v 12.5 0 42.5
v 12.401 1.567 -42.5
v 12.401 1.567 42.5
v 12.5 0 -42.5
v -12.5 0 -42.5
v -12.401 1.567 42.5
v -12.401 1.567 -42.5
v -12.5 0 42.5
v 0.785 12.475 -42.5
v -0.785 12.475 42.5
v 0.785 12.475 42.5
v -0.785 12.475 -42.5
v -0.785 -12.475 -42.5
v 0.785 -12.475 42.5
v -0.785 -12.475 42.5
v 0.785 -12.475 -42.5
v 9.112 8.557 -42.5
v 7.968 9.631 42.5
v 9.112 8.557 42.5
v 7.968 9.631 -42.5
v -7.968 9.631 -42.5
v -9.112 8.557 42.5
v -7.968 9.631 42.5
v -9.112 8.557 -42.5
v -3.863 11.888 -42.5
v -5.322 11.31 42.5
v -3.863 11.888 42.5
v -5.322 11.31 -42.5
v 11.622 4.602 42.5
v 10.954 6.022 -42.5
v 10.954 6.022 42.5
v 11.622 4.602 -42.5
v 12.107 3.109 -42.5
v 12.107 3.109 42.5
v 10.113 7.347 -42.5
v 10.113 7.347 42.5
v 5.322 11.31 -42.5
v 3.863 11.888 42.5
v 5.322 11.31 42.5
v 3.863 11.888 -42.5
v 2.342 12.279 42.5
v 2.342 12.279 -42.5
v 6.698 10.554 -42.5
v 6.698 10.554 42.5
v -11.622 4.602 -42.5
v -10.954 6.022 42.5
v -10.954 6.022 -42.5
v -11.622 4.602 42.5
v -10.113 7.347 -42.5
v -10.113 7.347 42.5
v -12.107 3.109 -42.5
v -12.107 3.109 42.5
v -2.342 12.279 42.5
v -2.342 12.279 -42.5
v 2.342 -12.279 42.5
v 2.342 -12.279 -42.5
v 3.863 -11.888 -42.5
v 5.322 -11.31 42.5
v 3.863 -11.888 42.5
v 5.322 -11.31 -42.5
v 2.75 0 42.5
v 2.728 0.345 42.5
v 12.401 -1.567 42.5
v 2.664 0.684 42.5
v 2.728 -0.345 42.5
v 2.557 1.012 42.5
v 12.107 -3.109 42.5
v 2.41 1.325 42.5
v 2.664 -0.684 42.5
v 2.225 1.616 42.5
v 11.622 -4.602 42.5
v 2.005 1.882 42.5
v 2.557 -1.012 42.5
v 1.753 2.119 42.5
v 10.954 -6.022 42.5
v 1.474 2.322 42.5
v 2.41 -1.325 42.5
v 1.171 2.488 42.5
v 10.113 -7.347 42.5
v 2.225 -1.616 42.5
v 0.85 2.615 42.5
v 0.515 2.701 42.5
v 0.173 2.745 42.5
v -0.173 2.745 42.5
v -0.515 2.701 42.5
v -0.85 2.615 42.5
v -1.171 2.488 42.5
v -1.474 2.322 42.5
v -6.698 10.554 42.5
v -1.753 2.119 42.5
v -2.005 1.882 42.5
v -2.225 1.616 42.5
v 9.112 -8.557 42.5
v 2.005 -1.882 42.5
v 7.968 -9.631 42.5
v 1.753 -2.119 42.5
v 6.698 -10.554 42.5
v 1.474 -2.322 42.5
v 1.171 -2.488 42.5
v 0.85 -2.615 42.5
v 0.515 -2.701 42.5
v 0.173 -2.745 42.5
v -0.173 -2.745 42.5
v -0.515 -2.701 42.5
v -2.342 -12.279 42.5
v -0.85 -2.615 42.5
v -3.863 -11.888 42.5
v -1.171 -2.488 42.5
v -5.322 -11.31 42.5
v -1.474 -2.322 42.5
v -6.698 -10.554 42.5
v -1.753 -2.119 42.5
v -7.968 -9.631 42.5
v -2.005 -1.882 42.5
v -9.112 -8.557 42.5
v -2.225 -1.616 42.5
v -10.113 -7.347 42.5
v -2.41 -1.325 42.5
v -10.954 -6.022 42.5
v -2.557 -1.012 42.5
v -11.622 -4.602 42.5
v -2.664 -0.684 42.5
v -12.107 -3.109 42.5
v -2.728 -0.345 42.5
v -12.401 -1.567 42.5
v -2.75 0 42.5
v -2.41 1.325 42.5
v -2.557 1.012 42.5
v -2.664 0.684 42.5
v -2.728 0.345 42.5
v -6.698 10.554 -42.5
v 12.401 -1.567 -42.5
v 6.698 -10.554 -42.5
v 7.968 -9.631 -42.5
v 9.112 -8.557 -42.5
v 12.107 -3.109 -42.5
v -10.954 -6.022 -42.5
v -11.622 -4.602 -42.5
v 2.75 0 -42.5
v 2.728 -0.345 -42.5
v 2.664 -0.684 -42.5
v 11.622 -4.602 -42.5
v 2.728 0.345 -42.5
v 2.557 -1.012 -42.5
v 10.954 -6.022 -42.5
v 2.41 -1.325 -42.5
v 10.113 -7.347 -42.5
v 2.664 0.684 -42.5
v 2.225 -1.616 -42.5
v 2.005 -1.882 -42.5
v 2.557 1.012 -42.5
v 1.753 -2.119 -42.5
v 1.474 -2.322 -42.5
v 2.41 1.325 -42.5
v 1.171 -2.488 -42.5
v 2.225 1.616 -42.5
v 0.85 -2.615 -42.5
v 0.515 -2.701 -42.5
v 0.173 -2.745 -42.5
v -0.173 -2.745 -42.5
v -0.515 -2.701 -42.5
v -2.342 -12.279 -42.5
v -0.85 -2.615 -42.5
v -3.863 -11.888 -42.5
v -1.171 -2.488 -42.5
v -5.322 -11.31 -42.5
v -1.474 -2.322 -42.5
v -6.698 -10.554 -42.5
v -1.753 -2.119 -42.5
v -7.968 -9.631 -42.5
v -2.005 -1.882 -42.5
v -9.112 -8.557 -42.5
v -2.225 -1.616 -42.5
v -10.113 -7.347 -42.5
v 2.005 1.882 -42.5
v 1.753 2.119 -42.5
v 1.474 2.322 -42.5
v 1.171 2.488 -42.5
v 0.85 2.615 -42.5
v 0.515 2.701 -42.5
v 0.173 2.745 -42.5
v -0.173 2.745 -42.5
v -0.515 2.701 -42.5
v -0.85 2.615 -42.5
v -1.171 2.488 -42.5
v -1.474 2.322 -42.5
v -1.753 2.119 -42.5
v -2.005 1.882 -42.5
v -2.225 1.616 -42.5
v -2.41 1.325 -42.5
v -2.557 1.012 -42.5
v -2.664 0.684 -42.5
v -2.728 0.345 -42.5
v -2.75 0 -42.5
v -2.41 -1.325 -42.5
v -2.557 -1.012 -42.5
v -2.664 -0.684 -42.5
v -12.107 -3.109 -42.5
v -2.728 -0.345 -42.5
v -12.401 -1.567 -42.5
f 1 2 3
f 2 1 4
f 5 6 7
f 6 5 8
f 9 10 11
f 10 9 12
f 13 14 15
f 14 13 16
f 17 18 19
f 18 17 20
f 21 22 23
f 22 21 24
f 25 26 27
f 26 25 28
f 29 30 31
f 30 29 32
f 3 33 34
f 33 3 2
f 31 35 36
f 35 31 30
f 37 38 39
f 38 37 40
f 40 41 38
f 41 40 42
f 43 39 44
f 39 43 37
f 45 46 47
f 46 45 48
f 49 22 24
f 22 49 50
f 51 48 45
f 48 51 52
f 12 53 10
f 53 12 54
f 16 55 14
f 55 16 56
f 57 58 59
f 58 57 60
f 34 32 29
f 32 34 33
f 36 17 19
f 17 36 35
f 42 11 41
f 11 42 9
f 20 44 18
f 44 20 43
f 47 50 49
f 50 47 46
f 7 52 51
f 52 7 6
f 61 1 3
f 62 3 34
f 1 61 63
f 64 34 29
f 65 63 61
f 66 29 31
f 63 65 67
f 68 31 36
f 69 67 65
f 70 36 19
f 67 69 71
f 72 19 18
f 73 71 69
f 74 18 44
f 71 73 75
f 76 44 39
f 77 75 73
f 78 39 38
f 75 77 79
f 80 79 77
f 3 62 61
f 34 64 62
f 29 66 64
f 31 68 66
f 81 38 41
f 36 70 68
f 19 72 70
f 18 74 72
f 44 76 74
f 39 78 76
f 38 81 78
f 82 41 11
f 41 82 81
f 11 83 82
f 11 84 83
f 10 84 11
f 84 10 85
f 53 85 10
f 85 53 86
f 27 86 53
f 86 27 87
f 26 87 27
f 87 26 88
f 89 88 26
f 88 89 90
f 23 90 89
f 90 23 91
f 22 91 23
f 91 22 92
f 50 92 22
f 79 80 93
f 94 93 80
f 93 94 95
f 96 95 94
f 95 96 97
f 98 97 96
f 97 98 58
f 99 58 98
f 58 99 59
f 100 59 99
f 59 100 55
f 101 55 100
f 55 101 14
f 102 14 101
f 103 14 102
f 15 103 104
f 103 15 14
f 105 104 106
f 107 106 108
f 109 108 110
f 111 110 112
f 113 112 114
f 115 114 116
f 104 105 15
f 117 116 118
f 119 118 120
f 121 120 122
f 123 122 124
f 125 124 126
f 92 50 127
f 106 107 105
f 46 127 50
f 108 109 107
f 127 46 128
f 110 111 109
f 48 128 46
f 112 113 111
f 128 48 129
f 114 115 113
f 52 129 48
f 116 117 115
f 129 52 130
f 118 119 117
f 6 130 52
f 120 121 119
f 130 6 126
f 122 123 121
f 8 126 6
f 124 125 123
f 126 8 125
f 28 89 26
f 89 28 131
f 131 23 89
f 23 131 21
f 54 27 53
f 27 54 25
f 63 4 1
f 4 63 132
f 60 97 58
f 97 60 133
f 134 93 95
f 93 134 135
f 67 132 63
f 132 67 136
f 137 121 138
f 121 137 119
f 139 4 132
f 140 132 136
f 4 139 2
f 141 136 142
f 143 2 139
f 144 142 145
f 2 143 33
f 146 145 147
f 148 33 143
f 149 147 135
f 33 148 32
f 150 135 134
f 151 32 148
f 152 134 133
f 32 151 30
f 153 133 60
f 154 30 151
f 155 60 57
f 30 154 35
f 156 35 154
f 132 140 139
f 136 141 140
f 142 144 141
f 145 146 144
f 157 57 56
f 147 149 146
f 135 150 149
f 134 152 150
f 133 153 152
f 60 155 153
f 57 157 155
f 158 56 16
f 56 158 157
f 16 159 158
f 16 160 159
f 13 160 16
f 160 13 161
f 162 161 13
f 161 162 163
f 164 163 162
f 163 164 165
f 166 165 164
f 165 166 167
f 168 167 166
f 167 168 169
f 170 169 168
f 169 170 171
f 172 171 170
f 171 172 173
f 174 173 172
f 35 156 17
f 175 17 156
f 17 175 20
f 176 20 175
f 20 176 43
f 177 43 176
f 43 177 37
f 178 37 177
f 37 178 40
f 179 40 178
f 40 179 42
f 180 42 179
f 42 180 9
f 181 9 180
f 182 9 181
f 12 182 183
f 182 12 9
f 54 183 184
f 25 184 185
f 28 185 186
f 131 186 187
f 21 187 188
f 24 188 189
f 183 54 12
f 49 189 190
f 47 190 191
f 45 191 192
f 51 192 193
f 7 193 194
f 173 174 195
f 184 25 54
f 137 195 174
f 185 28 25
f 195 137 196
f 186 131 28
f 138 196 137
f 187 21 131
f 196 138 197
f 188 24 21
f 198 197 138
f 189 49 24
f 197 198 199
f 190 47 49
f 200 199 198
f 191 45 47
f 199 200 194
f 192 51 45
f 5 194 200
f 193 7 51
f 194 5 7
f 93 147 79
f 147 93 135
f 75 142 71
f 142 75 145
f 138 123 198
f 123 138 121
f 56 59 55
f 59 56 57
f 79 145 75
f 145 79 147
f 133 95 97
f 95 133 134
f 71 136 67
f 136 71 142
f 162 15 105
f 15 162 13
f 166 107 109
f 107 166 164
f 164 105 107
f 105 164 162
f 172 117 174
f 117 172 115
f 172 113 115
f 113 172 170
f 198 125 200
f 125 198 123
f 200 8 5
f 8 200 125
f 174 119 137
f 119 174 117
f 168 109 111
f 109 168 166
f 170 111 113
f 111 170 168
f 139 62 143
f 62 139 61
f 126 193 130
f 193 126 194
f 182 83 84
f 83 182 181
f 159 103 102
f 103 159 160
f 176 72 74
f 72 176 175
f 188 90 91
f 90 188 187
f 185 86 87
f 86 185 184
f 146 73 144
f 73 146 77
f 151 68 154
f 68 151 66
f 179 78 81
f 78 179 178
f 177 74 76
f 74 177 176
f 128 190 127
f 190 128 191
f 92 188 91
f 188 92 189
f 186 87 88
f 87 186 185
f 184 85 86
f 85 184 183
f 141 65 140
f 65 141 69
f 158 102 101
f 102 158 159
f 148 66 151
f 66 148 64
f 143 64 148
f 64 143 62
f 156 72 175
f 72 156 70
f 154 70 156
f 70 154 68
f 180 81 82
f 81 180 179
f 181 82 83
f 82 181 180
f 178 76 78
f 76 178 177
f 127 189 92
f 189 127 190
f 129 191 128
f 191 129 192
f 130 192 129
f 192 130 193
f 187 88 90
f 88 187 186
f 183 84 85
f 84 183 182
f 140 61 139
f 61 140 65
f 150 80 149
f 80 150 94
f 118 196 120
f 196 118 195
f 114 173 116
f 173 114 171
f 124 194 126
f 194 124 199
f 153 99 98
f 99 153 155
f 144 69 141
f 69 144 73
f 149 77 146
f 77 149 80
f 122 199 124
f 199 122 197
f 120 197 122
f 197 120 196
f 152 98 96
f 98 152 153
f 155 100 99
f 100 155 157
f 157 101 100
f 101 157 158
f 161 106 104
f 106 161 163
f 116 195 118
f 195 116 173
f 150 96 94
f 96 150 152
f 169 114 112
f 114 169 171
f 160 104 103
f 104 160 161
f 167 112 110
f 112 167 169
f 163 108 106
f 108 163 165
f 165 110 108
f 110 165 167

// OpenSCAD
$fn = 50;


difference() {
	union() {
		translate(v = [0, 0, -42.5000000000]) {
			cylinder(h = 85, r = 12.5000000000);
		}
	}
	union() {
		translate(v = [0, 0, -100.0000000000]) {
			cylinder(h = 200, r = 2.7500000000);
		}
	}
}
